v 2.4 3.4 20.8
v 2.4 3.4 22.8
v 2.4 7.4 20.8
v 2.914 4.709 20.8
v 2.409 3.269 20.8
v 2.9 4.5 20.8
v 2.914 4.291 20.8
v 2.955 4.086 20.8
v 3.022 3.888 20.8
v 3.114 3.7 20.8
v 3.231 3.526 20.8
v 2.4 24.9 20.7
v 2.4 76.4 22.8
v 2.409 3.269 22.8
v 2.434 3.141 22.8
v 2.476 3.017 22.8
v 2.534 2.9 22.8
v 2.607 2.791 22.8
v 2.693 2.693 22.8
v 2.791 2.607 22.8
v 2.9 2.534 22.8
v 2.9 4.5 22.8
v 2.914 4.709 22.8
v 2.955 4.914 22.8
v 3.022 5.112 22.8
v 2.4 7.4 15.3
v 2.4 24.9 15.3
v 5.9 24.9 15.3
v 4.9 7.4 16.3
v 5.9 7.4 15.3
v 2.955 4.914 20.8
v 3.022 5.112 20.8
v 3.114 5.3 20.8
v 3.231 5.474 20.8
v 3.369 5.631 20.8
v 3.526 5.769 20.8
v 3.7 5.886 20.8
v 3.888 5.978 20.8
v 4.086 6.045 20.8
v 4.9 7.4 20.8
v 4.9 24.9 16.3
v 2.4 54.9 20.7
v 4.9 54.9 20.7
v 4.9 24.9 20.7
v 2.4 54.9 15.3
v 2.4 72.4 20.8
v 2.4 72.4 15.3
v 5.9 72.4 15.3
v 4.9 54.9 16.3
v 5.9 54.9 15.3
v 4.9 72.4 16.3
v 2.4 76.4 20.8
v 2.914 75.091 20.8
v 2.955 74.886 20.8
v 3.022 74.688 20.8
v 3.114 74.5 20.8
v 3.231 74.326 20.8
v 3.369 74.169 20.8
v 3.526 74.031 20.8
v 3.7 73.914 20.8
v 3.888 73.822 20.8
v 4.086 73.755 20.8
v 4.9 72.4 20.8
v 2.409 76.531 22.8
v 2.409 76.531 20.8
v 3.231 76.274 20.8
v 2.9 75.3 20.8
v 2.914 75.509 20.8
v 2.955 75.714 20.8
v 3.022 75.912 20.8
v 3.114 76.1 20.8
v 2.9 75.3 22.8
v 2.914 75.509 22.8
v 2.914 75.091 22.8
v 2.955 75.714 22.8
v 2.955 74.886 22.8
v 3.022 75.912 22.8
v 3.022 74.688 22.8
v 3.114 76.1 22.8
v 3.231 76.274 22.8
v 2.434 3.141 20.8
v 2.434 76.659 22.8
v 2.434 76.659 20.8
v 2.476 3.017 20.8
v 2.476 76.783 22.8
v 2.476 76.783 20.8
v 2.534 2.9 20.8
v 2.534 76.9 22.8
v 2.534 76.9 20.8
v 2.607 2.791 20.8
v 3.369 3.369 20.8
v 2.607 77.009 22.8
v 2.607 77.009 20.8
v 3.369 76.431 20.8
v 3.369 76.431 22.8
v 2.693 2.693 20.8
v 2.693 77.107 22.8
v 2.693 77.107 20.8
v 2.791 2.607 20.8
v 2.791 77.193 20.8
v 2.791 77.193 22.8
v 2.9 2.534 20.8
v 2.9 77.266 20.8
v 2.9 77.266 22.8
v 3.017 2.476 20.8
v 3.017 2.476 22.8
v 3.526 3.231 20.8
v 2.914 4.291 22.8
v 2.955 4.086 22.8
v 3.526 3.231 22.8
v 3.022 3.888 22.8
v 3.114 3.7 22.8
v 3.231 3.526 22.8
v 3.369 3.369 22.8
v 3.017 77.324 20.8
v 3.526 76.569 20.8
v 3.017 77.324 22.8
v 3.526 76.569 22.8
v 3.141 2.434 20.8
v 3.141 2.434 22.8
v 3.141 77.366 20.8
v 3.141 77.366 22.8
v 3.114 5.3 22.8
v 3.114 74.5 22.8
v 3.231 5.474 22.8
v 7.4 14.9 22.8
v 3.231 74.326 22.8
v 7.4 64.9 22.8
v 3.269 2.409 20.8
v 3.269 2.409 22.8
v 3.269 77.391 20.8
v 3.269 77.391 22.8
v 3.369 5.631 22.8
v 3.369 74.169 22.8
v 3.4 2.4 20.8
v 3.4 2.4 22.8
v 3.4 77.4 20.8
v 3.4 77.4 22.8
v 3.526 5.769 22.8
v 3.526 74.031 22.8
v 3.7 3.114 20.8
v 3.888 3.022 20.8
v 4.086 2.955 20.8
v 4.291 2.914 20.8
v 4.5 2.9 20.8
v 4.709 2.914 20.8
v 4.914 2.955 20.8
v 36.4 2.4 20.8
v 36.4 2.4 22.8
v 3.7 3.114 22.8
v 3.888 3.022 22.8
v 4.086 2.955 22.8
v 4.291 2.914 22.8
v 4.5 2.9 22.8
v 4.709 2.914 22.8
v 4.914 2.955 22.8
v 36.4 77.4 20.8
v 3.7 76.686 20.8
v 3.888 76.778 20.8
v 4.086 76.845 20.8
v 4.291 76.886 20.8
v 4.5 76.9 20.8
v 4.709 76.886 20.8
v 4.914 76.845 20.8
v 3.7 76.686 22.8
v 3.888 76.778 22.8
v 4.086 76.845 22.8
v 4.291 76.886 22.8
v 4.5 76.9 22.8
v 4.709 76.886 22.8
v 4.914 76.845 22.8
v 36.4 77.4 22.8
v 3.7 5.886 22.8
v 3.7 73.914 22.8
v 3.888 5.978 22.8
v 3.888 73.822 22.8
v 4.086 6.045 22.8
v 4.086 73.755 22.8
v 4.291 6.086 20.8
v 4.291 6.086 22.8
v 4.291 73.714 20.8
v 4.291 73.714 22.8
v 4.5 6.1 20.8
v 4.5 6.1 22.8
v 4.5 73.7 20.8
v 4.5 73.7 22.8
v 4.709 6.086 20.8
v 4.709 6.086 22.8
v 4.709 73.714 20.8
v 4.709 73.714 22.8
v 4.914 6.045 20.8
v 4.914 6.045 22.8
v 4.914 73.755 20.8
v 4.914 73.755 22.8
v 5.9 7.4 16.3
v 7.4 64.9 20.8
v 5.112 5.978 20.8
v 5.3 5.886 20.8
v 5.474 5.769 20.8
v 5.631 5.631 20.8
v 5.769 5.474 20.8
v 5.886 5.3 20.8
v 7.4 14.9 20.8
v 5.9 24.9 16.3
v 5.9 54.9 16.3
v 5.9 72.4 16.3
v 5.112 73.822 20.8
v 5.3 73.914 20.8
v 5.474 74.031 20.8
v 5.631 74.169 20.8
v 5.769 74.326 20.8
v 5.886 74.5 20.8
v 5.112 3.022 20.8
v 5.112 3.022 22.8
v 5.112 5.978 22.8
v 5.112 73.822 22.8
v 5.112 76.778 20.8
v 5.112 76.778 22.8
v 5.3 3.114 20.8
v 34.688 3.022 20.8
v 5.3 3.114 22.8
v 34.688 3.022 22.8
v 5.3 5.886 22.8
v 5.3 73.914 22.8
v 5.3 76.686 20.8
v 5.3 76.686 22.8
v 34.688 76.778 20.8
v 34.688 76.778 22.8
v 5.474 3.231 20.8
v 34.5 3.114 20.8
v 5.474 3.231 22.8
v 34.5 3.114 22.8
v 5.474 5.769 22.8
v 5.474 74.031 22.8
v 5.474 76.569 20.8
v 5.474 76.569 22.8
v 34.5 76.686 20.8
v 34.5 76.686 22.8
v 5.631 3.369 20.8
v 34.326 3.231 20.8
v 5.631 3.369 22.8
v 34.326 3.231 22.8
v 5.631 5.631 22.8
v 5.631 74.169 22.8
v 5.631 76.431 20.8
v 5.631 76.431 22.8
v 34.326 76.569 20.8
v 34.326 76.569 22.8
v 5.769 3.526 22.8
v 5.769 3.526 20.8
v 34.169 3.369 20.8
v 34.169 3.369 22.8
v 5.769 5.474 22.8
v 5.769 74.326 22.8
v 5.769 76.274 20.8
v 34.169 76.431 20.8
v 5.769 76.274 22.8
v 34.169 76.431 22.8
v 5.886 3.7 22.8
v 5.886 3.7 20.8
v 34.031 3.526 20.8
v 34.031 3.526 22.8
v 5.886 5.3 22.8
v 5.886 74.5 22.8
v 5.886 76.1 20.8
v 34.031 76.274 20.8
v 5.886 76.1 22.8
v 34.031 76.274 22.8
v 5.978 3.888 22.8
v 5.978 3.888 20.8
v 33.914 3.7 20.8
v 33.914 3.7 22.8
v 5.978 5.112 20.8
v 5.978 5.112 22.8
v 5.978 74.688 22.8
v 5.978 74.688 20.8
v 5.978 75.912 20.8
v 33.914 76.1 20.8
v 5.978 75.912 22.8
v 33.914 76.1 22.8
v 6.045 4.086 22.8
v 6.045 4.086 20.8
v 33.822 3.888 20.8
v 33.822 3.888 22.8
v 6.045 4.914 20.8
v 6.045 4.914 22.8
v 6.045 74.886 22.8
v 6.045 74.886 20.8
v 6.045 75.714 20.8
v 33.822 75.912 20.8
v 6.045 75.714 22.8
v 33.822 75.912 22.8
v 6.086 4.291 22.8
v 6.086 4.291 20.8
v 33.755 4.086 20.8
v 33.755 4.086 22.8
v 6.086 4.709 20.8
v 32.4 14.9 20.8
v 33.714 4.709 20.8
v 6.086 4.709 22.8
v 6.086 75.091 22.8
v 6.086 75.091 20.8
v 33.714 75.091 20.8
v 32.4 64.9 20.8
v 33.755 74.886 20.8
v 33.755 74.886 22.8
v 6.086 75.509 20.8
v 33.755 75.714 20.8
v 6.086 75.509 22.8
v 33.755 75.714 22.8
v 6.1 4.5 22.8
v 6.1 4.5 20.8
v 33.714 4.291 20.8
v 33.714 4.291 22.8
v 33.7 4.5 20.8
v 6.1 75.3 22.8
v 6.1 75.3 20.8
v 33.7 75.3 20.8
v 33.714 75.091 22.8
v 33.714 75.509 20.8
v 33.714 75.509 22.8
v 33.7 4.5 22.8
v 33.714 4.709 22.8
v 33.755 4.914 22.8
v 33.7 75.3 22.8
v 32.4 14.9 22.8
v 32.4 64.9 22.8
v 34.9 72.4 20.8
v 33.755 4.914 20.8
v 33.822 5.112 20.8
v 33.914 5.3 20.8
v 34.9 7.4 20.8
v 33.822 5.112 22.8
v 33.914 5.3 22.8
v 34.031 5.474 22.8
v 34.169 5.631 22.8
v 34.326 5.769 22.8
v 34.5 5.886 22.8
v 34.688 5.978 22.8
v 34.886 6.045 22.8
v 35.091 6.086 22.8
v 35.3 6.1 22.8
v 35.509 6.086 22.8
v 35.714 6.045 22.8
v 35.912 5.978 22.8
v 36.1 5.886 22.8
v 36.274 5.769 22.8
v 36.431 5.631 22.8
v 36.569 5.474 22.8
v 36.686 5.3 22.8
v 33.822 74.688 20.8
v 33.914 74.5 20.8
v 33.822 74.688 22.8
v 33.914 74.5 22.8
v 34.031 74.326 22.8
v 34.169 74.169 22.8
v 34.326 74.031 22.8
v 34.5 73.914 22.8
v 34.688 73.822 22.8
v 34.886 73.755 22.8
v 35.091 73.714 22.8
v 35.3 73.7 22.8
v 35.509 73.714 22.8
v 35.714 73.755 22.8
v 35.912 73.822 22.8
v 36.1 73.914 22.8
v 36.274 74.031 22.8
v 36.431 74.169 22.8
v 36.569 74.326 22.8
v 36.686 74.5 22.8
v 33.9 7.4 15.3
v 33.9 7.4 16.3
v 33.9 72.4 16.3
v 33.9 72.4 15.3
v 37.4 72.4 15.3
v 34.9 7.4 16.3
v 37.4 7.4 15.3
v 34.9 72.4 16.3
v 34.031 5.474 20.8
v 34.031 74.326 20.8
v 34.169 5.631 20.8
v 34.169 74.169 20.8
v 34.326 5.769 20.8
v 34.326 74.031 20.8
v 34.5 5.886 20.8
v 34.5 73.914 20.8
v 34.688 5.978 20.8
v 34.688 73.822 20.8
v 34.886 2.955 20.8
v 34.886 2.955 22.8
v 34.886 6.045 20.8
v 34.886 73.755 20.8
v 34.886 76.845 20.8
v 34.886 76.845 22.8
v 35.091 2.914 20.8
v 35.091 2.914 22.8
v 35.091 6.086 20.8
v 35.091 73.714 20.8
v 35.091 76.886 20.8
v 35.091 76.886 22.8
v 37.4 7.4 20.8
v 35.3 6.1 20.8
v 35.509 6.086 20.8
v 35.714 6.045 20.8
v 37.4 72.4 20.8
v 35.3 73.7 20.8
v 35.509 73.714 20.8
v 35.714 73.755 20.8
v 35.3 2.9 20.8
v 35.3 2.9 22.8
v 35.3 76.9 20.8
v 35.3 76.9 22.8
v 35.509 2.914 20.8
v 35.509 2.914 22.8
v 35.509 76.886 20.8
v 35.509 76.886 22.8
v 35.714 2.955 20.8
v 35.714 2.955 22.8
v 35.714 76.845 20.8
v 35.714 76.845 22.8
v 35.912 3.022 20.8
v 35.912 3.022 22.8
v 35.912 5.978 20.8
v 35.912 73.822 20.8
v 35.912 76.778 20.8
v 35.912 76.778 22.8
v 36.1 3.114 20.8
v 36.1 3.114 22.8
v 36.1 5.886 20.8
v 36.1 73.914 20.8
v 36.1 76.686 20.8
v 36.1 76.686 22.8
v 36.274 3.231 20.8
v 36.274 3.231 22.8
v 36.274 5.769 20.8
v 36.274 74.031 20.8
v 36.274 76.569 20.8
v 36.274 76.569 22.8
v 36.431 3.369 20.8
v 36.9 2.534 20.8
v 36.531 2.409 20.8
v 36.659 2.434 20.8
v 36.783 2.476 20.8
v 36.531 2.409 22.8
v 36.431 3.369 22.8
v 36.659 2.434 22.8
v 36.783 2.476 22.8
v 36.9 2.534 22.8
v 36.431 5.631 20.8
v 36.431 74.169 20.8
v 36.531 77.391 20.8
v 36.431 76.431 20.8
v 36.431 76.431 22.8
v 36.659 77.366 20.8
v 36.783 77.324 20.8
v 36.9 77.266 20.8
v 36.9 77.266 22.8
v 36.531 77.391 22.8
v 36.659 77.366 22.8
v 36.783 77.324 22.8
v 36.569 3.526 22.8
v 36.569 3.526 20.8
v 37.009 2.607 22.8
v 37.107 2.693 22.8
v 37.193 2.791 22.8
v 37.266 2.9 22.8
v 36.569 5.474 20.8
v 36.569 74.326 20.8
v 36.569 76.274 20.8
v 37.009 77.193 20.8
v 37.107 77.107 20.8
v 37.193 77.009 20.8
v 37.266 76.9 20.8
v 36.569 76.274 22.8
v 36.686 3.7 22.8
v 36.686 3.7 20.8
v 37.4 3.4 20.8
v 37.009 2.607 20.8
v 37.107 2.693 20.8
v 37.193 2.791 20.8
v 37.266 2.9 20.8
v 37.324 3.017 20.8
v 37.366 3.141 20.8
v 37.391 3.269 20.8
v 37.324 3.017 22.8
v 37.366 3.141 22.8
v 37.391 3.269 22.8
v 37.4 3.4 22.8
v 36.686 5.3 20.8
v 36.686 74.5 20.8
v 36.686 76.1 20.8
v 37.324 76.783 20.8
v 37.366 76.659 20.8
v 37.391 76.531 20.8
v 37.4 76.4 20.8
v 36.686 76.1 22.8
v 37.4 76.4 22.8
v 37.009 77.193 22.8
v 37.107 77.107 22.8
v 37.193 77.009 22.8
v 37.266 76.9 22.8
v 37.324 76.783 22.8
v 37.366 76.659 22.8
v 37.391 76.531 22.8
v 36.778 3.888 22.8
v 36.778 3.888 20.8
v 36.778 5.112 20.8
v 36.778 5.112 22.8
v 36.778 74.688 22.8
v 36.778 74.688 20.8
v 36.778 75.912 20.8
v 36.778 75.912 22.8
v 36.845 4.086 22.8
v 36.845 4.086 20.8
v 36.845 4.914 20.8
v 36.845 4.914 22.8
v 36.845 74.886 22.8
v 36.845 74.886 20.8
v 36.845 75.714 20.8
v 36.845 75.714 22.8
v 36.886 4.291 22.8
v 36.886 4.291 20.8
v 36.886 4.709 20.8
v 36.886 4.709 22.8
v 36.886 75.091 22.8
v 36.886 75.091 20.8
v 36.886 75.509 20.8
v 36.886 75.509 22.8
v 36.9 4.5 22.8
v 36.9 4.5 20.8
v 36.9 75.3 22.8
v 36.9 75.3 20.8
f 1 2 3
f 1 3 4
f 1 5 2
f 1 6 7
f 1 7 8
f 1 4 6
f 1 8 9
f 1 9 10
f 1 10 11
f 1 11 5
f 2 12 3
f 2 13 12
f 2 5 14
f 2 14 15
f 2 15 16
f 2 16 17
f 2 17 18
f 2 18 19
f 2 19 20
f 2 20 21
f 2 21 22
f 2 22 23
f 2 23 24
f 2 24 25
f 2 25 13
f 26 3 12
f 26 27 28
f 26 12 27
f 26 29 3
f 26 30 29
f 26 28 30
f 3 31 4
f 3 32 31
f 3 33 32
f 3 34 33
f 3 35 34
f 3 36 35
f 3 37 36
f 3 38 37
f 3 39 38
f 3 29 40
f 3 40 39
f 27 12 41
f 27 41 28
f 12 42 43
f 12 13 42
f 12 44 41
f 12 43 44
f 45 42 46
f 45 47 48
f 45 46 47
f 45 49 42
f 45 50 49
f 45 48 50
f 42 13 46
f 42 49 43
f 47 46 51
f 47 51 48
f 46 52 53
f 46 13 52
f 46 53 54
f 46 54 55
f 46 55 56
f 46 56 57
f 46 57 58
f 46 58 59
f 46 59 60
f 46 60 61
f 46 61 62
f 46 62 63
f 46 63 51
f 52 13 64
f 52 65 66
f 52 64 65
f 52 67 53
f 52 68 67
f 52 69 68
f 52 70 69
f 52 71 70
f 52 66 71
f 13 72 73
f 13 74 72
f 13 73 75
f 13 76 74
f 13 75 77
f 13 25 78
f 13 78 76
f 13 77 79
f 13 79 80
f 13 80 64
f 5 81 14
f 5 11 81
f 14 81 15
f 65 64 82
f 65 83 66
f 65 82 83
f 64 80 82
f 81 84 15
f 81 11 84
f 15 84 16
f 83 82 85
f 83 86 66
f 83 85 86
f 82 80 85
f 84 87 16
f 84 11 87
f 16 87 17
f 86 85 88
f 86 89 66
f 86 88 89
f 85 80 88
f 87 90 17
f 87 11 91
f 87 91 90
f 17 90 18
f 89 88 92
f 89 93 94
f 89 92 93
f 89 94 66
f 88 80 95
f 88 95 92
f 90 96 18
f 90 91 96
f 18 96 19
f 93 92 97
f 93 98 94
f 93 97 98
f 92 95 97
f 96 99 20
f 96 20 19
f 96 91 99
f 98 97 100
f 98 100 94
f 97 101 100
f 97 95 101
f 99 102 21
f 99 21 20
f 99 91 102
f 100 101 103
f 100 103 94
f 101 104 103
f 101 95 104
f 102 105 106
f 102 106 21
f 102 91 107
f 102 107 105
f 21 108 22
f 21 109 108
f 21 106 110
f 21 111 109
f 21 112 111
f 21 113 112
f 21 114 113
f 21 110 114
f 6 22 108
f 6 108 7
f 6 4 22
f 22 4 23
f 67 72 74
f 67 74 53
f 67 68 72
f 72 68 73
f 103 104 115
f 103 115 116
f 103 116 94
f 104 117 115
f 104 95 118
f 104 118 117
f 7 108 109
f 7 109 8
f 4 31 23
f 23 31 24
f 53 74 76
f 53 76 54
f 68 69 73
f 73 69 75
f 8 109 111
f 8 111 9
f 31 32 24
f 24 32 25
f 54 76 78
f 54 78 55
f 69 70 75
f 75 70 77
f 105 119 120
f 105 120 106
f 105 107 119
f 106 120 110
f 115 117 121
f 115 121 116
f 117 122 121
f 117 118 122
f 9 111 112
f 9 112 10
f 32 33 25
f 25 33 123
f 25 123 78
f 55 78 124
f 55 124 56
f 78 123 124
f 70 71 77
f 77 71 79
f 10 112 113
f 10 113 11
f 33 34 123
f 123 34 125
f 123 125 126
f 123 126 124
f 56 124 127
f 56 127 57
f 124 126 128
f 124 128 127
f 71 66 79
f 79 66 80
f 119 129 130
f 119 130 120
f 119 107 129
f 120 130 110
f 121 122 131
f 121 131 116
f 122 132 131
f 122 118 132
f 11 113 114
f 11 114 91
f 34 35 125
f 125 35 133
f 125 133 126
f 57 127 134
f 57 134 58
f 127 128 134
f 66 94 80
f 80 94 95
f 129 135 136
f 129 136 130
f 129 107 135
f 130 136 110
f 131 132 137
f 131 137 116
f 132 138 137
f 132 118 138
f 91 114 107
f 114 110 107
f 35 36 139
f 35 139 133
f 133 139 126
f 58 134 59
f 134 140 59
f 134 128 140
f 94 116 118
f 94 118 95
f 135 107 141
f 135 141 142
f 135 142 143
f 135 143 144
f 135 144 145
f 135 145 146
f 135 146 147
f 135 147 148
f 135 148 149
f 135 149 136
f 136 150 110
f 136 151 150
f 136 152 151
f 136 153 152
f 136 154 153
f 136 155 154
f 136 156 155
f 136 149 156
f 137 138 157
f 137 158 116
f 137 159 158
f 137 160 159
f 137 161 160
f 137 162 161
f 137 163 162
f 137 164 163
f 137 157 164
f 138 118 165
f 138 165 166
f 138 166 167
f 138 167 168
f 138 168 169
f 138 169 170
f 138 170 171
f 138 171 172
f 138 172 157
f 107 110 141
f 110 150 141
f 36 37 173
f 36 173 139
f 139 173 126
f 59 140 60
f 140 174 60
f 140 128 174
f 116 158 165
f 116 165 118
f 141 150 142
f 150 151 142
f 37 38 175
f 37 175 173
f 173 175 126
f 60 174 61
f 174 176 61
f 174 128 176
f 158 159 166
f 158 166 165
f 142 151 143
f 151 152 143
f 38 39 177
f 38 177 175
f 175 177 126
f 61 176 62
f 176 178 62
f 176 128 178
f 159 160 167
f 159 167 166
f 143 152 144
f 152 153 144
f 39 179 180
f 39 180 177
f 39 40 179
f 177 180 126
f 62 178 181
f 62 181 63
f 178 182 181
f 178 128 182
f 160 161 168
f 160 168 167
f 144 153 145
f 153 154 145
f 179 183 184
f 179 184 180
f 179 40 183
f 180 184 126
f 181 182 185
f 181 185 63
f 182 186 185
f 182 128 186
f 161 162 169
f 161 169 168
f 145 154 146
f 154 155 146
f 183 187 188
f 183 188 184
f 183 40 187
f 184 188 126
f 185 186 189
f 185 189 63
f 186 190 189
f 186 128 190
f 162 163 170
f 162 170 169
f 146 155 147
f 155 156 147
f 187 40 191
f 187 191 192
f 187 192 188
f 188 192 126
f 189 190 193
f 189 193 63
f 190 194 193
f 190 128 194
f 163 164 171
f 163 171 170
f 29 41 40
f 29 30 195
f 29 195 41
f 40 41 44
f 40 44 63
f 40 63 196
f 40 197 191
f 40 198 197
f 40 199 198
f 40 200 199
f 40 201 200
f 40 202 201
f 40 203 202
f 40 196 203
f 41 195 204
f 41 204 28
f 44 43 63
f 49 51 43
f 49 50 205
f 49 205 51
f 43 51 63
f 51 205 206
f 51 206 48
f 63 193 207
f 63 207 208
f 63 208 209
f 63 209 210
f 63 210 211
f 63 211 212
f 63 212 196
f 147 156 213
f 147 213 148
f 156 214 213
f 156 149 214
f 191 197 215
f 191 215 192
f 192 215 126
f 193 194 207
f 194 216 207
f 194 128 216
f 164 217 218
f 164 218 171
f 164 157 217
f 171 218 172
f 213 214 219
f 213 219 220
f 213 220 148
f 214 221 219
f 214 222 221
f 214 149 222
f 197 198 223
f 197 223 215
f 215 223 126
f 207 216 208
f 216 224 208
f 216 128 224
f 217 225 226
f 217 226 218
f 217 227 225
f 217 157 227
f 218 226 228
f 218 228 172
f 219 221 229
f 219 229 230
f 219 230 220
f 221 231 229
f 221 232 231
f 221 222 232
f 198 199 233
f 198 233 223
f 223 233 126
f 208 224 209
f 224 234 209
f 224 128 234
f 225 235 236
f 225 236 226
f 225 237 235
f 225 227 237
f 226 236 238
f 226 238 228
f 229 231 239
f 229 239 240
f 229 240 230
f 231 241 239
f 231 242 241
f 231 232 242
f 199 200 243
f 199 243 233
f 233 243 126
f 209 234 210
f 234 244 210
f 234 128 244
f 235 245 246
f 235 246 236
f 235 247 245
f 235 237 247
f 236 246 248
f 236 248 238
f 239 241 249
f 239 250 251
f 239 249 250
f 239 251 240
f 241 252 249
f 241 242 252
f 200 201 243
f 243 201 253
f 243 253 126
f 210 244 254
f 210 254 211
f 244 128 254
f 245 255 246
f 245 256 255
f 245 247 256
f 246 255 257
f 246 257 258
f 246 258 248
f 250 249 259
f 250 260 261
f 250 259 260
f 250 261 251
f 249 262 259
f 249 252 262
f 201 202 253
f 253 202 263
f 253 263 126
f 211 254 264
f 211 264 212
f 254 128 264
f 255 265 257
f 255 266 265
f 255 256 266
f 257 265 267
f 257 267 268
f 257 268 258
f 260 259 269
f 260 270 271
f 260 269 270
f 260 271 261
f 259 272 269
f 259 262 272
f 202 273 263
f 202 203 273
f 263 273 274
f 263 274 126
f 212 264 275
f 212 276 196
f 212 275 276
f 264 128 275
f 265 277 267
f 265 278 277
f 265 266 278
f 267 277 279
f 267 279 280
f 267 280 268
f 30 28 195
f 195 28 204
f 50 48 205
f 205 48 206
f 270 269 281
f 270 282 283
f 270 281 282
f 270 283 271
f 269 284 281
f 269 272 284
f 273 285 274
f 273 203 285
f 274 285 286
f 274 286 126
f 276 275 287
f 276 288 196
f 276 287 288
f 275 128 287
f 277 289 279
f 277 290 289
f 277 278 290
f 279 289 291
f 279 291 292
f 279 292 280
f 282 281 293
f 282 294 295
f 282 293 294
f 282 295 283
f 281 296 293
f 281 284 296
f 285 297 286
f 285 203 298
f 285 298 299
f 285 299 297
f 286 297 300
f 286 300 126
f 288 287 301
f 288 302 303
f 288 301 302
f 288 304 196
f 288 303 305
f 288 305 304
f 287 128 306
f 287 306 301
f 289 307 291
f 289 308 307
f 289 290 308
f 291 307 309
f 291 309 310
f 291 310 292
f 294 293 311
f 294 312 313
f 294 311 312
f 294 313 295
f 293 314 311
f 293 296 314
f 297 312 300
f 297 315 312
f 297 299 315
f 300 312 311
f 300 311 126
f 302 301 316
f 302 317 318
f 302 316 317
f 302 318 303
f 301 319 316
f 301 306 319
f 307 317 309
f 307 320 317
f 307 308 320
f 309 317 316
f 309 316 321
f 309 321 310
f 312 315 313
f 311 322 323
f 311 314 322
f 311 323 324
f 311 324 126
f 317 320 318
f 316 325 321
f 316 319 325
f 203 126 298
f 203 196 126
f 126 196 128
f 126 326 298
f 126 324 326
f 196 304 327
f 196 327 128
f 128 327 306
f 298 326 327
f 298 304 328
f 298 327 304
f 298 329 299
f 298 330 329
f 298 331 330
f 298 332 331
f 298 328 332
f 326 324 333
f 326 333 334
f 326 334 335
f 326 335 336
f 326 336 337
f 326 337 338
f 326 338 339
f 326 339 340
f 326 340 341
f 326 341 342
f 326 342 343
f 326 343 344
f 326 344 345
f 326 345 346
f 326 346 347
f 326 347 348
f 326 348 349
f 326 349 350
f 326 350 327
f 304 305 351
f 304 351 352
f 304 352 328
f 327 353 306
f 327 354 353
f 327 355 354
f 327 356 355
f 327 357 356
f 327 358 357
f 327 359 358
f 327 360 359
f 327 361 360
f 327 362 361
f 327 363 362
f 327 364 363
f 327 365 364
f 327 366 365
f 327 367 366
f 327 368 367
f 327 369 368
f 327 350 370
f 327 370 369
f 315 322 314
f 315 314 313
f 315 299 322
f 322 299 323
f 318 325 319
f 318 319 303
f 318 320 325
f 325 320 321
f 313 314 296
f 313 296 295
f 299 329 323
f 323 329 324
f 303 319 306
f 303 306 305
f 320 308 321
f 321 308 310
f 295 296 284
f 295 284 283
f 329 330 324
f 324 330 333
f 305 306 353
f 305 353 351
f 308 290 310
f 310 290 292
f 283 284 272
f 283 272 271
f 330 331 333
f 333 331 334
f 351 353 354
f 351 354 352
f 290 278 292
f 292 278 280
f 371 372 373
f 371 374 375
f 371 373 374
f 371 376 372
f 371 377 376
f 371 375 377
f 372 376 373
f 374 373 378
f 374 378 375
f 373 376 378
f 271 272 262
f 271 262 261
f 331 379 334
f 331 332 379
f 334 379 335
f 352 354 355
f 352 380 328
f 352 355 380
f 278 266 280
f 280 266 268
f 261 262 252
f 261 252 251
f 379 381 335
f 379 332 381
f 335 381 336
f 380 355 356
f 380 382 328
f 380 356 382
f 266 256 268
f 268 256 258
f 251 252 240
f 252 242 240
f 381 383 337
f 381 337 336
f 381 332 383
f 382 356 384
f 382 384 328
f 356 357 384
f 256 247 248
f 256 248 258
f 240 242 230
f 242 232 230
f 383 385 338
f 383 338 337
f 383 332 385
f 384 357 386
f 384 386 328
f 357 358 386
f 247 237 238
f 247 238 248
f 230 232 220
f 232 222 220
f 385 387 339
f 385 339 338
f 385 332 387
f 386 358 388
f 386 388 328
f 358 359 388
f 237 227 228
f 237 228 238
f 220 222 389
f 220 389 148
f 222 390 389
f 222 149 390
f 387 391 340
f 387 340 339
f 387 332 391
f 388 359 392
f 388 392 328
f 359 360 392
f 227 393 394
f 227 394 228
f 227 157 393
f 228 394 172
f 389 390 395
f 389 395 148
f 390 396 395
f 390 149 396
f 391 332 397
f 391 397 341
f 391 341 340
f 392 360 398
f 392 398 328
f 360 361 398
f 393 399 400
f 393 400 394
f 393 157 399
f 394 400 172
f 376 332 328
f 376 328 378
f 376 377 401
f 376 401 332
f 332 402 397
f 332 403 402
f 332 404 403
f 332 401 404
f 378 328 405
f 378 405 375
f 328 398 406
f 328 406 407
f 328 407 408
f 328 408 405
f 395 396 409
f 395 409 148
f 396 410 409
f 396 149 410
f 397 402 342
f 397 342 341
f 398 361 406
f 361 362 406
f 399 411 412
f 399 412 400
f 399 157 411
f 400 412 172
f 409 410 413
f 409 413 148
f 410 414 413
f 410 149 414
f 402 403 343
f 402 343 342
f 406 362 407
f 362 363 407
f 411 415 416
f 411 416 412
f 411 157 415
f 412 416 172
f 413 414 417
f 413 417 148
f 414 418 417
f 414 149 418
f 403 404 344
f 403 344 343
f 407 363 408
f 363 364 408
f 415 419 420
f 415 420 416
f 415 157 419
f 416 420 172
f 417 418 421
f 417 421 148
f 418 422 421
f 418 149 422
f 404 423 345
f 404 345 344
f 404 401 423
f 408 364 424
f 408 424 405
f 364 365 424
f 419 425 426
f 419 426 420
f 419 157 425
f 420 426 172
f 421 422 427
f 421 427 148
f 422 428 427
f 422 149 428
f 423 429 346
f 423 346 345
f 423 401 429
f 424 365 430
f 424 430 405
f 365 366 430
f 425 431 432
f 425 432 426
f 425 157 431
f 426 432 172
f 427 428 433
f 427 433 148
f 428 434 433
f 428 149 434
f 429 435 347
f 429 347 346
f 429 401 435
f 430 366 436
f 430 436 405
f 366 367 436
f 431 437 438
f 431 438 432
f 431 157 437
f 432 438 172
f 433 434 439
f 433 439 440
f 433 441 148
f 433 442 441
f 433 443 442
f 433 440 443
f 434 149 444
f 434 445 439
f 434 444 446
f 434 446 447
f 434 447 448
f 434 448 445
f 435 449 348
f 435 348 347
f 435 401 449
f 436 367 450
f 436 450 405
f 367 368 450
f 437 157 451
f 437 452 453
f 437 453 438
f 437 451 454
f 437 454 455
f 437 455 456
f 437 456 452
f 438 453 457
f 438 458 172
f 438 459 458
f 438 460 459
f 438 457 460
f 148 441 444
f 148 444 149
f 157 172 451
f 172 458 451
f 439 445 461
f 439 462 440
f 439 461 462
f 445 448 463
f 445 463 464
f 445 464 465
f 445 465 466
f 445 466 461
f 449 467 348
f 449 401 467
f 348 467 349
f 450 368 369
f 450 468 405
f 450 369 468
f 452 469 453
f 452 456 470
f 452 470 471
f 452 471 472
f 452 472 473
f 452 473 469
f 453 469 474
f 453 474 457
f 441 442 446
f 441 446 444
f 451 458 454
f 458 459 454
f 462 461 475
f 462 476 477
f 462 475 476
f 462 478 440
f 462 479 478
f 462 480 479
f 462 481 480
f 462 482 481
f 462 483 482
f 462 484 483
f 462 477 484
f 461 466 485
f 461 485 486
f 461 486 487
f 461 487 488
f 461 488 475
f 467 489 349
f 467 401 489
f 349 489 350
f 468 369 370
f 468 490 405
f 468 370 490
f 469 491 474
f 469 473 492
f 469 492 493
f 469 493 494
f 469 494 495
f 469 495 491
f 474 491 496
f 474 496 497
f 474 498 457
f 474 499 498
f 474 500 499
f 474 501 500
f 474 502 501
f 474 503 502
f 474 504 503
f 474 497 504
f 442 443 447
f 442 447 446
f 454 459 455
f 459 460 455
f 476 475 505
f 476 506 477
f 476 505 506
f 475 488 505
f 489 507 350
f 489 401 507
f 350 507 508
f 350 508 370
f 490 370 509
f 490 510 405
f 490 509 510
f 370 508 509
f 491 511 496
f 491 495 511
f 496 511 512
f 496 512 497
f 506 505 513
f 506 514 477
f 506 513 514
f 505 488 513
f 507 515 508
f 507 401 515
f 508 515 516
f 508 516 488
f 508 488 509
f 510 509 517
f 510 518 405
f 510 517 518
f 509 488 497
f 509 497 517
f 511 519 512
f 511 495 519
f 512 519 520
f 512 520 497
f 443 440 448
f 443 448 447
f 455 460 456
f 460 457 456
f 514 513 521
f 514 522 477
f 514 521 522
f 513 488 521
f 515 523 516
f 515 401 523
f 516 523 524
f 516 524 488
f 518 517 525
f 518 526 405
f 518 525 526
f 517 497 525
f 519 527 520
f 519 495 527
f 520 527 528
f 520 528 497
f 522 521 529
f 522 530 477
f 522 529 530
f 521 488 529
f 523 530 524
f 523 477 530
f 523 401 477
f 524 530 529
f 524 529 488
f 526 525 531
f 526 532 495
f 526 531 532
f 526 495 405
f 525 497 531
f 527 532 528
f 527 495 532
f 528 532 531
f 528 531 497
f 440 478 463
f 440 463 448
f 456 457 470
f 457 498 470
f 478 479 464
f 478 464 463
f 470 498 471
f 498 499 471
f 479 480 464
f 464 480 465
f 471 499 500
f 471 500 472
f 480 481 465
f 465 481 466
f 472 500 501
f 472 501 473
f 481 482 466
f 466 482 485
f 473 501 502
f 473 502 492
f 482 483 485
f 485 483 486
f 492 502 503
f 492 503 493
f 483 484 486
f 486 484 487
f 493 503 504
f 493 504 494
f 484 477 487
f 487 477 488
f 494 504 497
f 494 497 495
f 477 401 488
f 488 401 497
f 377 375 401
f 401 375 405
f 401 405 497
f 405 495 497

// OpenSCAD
// Dilder Top-Mid Plate (windowed) v1 — display cover with viewing window + snap-fit rails
//
// Fits inside the top cover frame. Solid face plate all around (no wire gap in face).
// Rails extend to plate edges and retain a gap for wire pass-through below the face.
//
// Export:
//   openscad -o top-plate-windowed-v1.3mf top-plate-windowed-v1.scad

$fn = 48;

// ---- Board (Olimex ESP32-S3-DevKit-Lipo) ----
board_len      = 56;
board_wid      = 28;
antenna_proj   = 6;

// ---- Waveshare 2.13" display ----
disp_len       = 65;
disp_wid       = 30;
disp_thk       = 5;

// ---- 1000 mAh battery ----
bat_len        = 52;
bat_wid        = 35;

// ---- Enclosure geometry ----
wall_thk       = 2;
plate_thk      = 2;
pillar         = 5;
slop           = 0.4;
bat_chamber_h  = 6;
disp_clear     = 1;
board_thk      = 1.6;
wroom_h        = 3.2;

screw_clr      = 3.2;

// ---- Rounding ----
plate_corner_r = 1;

// ---- Display viewing window ----
topmid_window_w = 25;
topmid_window_l = 50;

// ---- Snap rails ----
snap_lip_d     = 1.0;       // lip protrusion inward under display
snap_lip_h     = 1.0;       // lip thickness — full printable layer
snap_rail_h    = 4.5;       // rail depth below face plate

// ---- Wire gap (rail only, not face plate) ----
wire_hole_len  = 30;
wire_hole_depth = 6;

// ---- Z layout ----
z_base_top     = plate_thk;
z_mid_bot      = z_base_top + bat_chamber_h;
z_mid_top      = z_mid_bot + plate_thk;
z_board_bot    = z_mid_top;
z_board_top    = z_board_bot + board_thk;
z_wroom_top    = z_board_top + wroom_h;
z_disp_bot     = z_wroom_top + disp_clear;
z_disp_top     = z_disp_bot + disp_thk;

// ---- XY layout ----
inner_wid      = max(board_wid, disp_wid, bat_wid) + 2 * slop;
inner_len      = max(board_len + antenna_proj, disp_len + 2 * pillar, bat_len) + 2 * slop;
outer_wid      = inner_wid + 2 * wall_thk;
outer_len      = inner_len + 2 * wall_thk;

pillar_xy = [
    [wall_thk,                             wall_thk                            ],
    [outer_wid - wall_thk - pillar,        wall_thk                            ],
    [wall_thk,                             outer_len - wall_thk - pillar       ],
    [outer_wid - wall_thk - pillar,        outer_len - wall_thk - pillar       ],
];

disp_x         = (outer_wid - disp_wid) / 2;
disp_y         = (outer_len - disp_len) / 2;


// ============== SHARED ==============

module rounded_v_box(w, l, h, r, fn = 48) {
    hull() {
        for (x = [r, w - r])
            for (y = [r, l - r])
                translate([x, y, 0])
                    cylinder(r = r, h = h, $fn = fn);
    }
}


// ============== TOP-MID PLATE (WINDOWED) v1 ==============

module top_plate_windowed() {
    plate_w = inner_wid - 2 * slop;
    plate_l = inner_len - 2 * slop;
    plate_x = wall_thk + slop;
    plate_y = wall_thk + slop;

    // Rails extend from display edge to plate edge
    rail_y_local      = disp_y - plate_y;
    rail_len          = disp_len;
    disp_x_local      = disp_x - plate_x;          // display left edge in local coords
    disp_x_right      = disp_x_local + disp_wid;    // display right edge

    // Left rail: from plate edge (x=0) to display left edge
    rail_w_left       = disp_x_local;                // ~2.5mm
    // Right rail: from display right edge to plate far edge
    rail_w_right      = plate_w - disp_x_right;      // ~2.5mm

    // Lip positions (at display edges, protruding inward)
    lip_x_left        = disp_x_local;
    lip_x_right       = disp_x_right - snap_lip_d;

    // Display viewing window (centered on plate)
    win_x = (plate_w - topmid_window_w) / 2;
    win_y = (plate_l - topmid_window_l) / 2;

    // Wire gap in rail only (centered on Y)
    wire_y = (plate_l - wire_hole_len) / 2;

    translate([plate_x, plate_y, z_disp_top])
    difference() {
        union() {
            // Solid face plate
            rounded_v_box(plate_w, plate_l, plate_thk, plate_corner_r);

            // -X long rail (extends to plate edge)
            translate([0, rail_y_local, -snap_rail_h])
                cube([rail_w_left, rail_len, snap_rail_h]);
            // Lip: full-width shelf on rail bottom + inward protrusion
            translate([0, rail_y_local, -snap_rail_h - snap_lip_h])
                cube([rail_w_left + snap_lip_d, rail_len, snap_lip_h]);

            // +X long rail (extends to plate edge)
            translate([disp_x_right, rail_y_local, -snap_rail_h])
                cube([rail_w_right, rail_len, snap_rail_h]);
            // Lip: full-width shelf on rail bottom + inward protrusion
            translate([disp_x_right - snap_lip_d, rail_y_local, -snap_rail_h - snap_lip_h])
                cube([rail_w_right + snap_lip_d, rail_len, snap_lip_h]);
        }

        // Screw clearance holes
        for (p = pillar_xy)
            translate([p[0] + pillar/2 - plate_x, p[1] + pillar/2 - plate_y,
                       -snap_rail_h - snap_lip_h - 1])
                cylinder(h = plate_thk + snap_rail_h + snap_lip_h + 2, d = screw_clr);

        // Display viewing window
        translate([win_x, win_y, -0.1])
            cube([topmid_window_w, topmid_window_l, plate_thk + 0.2]);

        // Wire gap — cuts through rail + lip ONLY (below face plate)
        translate([-0.1, wire_y, -snap_rail_h - snap_lip_h - 0.1])
            cube([wire_hole_depth + 0.1, wire_hole_len, snap_rail_h + snap_lip_h]);
    }
}

top_plate_windowed();
